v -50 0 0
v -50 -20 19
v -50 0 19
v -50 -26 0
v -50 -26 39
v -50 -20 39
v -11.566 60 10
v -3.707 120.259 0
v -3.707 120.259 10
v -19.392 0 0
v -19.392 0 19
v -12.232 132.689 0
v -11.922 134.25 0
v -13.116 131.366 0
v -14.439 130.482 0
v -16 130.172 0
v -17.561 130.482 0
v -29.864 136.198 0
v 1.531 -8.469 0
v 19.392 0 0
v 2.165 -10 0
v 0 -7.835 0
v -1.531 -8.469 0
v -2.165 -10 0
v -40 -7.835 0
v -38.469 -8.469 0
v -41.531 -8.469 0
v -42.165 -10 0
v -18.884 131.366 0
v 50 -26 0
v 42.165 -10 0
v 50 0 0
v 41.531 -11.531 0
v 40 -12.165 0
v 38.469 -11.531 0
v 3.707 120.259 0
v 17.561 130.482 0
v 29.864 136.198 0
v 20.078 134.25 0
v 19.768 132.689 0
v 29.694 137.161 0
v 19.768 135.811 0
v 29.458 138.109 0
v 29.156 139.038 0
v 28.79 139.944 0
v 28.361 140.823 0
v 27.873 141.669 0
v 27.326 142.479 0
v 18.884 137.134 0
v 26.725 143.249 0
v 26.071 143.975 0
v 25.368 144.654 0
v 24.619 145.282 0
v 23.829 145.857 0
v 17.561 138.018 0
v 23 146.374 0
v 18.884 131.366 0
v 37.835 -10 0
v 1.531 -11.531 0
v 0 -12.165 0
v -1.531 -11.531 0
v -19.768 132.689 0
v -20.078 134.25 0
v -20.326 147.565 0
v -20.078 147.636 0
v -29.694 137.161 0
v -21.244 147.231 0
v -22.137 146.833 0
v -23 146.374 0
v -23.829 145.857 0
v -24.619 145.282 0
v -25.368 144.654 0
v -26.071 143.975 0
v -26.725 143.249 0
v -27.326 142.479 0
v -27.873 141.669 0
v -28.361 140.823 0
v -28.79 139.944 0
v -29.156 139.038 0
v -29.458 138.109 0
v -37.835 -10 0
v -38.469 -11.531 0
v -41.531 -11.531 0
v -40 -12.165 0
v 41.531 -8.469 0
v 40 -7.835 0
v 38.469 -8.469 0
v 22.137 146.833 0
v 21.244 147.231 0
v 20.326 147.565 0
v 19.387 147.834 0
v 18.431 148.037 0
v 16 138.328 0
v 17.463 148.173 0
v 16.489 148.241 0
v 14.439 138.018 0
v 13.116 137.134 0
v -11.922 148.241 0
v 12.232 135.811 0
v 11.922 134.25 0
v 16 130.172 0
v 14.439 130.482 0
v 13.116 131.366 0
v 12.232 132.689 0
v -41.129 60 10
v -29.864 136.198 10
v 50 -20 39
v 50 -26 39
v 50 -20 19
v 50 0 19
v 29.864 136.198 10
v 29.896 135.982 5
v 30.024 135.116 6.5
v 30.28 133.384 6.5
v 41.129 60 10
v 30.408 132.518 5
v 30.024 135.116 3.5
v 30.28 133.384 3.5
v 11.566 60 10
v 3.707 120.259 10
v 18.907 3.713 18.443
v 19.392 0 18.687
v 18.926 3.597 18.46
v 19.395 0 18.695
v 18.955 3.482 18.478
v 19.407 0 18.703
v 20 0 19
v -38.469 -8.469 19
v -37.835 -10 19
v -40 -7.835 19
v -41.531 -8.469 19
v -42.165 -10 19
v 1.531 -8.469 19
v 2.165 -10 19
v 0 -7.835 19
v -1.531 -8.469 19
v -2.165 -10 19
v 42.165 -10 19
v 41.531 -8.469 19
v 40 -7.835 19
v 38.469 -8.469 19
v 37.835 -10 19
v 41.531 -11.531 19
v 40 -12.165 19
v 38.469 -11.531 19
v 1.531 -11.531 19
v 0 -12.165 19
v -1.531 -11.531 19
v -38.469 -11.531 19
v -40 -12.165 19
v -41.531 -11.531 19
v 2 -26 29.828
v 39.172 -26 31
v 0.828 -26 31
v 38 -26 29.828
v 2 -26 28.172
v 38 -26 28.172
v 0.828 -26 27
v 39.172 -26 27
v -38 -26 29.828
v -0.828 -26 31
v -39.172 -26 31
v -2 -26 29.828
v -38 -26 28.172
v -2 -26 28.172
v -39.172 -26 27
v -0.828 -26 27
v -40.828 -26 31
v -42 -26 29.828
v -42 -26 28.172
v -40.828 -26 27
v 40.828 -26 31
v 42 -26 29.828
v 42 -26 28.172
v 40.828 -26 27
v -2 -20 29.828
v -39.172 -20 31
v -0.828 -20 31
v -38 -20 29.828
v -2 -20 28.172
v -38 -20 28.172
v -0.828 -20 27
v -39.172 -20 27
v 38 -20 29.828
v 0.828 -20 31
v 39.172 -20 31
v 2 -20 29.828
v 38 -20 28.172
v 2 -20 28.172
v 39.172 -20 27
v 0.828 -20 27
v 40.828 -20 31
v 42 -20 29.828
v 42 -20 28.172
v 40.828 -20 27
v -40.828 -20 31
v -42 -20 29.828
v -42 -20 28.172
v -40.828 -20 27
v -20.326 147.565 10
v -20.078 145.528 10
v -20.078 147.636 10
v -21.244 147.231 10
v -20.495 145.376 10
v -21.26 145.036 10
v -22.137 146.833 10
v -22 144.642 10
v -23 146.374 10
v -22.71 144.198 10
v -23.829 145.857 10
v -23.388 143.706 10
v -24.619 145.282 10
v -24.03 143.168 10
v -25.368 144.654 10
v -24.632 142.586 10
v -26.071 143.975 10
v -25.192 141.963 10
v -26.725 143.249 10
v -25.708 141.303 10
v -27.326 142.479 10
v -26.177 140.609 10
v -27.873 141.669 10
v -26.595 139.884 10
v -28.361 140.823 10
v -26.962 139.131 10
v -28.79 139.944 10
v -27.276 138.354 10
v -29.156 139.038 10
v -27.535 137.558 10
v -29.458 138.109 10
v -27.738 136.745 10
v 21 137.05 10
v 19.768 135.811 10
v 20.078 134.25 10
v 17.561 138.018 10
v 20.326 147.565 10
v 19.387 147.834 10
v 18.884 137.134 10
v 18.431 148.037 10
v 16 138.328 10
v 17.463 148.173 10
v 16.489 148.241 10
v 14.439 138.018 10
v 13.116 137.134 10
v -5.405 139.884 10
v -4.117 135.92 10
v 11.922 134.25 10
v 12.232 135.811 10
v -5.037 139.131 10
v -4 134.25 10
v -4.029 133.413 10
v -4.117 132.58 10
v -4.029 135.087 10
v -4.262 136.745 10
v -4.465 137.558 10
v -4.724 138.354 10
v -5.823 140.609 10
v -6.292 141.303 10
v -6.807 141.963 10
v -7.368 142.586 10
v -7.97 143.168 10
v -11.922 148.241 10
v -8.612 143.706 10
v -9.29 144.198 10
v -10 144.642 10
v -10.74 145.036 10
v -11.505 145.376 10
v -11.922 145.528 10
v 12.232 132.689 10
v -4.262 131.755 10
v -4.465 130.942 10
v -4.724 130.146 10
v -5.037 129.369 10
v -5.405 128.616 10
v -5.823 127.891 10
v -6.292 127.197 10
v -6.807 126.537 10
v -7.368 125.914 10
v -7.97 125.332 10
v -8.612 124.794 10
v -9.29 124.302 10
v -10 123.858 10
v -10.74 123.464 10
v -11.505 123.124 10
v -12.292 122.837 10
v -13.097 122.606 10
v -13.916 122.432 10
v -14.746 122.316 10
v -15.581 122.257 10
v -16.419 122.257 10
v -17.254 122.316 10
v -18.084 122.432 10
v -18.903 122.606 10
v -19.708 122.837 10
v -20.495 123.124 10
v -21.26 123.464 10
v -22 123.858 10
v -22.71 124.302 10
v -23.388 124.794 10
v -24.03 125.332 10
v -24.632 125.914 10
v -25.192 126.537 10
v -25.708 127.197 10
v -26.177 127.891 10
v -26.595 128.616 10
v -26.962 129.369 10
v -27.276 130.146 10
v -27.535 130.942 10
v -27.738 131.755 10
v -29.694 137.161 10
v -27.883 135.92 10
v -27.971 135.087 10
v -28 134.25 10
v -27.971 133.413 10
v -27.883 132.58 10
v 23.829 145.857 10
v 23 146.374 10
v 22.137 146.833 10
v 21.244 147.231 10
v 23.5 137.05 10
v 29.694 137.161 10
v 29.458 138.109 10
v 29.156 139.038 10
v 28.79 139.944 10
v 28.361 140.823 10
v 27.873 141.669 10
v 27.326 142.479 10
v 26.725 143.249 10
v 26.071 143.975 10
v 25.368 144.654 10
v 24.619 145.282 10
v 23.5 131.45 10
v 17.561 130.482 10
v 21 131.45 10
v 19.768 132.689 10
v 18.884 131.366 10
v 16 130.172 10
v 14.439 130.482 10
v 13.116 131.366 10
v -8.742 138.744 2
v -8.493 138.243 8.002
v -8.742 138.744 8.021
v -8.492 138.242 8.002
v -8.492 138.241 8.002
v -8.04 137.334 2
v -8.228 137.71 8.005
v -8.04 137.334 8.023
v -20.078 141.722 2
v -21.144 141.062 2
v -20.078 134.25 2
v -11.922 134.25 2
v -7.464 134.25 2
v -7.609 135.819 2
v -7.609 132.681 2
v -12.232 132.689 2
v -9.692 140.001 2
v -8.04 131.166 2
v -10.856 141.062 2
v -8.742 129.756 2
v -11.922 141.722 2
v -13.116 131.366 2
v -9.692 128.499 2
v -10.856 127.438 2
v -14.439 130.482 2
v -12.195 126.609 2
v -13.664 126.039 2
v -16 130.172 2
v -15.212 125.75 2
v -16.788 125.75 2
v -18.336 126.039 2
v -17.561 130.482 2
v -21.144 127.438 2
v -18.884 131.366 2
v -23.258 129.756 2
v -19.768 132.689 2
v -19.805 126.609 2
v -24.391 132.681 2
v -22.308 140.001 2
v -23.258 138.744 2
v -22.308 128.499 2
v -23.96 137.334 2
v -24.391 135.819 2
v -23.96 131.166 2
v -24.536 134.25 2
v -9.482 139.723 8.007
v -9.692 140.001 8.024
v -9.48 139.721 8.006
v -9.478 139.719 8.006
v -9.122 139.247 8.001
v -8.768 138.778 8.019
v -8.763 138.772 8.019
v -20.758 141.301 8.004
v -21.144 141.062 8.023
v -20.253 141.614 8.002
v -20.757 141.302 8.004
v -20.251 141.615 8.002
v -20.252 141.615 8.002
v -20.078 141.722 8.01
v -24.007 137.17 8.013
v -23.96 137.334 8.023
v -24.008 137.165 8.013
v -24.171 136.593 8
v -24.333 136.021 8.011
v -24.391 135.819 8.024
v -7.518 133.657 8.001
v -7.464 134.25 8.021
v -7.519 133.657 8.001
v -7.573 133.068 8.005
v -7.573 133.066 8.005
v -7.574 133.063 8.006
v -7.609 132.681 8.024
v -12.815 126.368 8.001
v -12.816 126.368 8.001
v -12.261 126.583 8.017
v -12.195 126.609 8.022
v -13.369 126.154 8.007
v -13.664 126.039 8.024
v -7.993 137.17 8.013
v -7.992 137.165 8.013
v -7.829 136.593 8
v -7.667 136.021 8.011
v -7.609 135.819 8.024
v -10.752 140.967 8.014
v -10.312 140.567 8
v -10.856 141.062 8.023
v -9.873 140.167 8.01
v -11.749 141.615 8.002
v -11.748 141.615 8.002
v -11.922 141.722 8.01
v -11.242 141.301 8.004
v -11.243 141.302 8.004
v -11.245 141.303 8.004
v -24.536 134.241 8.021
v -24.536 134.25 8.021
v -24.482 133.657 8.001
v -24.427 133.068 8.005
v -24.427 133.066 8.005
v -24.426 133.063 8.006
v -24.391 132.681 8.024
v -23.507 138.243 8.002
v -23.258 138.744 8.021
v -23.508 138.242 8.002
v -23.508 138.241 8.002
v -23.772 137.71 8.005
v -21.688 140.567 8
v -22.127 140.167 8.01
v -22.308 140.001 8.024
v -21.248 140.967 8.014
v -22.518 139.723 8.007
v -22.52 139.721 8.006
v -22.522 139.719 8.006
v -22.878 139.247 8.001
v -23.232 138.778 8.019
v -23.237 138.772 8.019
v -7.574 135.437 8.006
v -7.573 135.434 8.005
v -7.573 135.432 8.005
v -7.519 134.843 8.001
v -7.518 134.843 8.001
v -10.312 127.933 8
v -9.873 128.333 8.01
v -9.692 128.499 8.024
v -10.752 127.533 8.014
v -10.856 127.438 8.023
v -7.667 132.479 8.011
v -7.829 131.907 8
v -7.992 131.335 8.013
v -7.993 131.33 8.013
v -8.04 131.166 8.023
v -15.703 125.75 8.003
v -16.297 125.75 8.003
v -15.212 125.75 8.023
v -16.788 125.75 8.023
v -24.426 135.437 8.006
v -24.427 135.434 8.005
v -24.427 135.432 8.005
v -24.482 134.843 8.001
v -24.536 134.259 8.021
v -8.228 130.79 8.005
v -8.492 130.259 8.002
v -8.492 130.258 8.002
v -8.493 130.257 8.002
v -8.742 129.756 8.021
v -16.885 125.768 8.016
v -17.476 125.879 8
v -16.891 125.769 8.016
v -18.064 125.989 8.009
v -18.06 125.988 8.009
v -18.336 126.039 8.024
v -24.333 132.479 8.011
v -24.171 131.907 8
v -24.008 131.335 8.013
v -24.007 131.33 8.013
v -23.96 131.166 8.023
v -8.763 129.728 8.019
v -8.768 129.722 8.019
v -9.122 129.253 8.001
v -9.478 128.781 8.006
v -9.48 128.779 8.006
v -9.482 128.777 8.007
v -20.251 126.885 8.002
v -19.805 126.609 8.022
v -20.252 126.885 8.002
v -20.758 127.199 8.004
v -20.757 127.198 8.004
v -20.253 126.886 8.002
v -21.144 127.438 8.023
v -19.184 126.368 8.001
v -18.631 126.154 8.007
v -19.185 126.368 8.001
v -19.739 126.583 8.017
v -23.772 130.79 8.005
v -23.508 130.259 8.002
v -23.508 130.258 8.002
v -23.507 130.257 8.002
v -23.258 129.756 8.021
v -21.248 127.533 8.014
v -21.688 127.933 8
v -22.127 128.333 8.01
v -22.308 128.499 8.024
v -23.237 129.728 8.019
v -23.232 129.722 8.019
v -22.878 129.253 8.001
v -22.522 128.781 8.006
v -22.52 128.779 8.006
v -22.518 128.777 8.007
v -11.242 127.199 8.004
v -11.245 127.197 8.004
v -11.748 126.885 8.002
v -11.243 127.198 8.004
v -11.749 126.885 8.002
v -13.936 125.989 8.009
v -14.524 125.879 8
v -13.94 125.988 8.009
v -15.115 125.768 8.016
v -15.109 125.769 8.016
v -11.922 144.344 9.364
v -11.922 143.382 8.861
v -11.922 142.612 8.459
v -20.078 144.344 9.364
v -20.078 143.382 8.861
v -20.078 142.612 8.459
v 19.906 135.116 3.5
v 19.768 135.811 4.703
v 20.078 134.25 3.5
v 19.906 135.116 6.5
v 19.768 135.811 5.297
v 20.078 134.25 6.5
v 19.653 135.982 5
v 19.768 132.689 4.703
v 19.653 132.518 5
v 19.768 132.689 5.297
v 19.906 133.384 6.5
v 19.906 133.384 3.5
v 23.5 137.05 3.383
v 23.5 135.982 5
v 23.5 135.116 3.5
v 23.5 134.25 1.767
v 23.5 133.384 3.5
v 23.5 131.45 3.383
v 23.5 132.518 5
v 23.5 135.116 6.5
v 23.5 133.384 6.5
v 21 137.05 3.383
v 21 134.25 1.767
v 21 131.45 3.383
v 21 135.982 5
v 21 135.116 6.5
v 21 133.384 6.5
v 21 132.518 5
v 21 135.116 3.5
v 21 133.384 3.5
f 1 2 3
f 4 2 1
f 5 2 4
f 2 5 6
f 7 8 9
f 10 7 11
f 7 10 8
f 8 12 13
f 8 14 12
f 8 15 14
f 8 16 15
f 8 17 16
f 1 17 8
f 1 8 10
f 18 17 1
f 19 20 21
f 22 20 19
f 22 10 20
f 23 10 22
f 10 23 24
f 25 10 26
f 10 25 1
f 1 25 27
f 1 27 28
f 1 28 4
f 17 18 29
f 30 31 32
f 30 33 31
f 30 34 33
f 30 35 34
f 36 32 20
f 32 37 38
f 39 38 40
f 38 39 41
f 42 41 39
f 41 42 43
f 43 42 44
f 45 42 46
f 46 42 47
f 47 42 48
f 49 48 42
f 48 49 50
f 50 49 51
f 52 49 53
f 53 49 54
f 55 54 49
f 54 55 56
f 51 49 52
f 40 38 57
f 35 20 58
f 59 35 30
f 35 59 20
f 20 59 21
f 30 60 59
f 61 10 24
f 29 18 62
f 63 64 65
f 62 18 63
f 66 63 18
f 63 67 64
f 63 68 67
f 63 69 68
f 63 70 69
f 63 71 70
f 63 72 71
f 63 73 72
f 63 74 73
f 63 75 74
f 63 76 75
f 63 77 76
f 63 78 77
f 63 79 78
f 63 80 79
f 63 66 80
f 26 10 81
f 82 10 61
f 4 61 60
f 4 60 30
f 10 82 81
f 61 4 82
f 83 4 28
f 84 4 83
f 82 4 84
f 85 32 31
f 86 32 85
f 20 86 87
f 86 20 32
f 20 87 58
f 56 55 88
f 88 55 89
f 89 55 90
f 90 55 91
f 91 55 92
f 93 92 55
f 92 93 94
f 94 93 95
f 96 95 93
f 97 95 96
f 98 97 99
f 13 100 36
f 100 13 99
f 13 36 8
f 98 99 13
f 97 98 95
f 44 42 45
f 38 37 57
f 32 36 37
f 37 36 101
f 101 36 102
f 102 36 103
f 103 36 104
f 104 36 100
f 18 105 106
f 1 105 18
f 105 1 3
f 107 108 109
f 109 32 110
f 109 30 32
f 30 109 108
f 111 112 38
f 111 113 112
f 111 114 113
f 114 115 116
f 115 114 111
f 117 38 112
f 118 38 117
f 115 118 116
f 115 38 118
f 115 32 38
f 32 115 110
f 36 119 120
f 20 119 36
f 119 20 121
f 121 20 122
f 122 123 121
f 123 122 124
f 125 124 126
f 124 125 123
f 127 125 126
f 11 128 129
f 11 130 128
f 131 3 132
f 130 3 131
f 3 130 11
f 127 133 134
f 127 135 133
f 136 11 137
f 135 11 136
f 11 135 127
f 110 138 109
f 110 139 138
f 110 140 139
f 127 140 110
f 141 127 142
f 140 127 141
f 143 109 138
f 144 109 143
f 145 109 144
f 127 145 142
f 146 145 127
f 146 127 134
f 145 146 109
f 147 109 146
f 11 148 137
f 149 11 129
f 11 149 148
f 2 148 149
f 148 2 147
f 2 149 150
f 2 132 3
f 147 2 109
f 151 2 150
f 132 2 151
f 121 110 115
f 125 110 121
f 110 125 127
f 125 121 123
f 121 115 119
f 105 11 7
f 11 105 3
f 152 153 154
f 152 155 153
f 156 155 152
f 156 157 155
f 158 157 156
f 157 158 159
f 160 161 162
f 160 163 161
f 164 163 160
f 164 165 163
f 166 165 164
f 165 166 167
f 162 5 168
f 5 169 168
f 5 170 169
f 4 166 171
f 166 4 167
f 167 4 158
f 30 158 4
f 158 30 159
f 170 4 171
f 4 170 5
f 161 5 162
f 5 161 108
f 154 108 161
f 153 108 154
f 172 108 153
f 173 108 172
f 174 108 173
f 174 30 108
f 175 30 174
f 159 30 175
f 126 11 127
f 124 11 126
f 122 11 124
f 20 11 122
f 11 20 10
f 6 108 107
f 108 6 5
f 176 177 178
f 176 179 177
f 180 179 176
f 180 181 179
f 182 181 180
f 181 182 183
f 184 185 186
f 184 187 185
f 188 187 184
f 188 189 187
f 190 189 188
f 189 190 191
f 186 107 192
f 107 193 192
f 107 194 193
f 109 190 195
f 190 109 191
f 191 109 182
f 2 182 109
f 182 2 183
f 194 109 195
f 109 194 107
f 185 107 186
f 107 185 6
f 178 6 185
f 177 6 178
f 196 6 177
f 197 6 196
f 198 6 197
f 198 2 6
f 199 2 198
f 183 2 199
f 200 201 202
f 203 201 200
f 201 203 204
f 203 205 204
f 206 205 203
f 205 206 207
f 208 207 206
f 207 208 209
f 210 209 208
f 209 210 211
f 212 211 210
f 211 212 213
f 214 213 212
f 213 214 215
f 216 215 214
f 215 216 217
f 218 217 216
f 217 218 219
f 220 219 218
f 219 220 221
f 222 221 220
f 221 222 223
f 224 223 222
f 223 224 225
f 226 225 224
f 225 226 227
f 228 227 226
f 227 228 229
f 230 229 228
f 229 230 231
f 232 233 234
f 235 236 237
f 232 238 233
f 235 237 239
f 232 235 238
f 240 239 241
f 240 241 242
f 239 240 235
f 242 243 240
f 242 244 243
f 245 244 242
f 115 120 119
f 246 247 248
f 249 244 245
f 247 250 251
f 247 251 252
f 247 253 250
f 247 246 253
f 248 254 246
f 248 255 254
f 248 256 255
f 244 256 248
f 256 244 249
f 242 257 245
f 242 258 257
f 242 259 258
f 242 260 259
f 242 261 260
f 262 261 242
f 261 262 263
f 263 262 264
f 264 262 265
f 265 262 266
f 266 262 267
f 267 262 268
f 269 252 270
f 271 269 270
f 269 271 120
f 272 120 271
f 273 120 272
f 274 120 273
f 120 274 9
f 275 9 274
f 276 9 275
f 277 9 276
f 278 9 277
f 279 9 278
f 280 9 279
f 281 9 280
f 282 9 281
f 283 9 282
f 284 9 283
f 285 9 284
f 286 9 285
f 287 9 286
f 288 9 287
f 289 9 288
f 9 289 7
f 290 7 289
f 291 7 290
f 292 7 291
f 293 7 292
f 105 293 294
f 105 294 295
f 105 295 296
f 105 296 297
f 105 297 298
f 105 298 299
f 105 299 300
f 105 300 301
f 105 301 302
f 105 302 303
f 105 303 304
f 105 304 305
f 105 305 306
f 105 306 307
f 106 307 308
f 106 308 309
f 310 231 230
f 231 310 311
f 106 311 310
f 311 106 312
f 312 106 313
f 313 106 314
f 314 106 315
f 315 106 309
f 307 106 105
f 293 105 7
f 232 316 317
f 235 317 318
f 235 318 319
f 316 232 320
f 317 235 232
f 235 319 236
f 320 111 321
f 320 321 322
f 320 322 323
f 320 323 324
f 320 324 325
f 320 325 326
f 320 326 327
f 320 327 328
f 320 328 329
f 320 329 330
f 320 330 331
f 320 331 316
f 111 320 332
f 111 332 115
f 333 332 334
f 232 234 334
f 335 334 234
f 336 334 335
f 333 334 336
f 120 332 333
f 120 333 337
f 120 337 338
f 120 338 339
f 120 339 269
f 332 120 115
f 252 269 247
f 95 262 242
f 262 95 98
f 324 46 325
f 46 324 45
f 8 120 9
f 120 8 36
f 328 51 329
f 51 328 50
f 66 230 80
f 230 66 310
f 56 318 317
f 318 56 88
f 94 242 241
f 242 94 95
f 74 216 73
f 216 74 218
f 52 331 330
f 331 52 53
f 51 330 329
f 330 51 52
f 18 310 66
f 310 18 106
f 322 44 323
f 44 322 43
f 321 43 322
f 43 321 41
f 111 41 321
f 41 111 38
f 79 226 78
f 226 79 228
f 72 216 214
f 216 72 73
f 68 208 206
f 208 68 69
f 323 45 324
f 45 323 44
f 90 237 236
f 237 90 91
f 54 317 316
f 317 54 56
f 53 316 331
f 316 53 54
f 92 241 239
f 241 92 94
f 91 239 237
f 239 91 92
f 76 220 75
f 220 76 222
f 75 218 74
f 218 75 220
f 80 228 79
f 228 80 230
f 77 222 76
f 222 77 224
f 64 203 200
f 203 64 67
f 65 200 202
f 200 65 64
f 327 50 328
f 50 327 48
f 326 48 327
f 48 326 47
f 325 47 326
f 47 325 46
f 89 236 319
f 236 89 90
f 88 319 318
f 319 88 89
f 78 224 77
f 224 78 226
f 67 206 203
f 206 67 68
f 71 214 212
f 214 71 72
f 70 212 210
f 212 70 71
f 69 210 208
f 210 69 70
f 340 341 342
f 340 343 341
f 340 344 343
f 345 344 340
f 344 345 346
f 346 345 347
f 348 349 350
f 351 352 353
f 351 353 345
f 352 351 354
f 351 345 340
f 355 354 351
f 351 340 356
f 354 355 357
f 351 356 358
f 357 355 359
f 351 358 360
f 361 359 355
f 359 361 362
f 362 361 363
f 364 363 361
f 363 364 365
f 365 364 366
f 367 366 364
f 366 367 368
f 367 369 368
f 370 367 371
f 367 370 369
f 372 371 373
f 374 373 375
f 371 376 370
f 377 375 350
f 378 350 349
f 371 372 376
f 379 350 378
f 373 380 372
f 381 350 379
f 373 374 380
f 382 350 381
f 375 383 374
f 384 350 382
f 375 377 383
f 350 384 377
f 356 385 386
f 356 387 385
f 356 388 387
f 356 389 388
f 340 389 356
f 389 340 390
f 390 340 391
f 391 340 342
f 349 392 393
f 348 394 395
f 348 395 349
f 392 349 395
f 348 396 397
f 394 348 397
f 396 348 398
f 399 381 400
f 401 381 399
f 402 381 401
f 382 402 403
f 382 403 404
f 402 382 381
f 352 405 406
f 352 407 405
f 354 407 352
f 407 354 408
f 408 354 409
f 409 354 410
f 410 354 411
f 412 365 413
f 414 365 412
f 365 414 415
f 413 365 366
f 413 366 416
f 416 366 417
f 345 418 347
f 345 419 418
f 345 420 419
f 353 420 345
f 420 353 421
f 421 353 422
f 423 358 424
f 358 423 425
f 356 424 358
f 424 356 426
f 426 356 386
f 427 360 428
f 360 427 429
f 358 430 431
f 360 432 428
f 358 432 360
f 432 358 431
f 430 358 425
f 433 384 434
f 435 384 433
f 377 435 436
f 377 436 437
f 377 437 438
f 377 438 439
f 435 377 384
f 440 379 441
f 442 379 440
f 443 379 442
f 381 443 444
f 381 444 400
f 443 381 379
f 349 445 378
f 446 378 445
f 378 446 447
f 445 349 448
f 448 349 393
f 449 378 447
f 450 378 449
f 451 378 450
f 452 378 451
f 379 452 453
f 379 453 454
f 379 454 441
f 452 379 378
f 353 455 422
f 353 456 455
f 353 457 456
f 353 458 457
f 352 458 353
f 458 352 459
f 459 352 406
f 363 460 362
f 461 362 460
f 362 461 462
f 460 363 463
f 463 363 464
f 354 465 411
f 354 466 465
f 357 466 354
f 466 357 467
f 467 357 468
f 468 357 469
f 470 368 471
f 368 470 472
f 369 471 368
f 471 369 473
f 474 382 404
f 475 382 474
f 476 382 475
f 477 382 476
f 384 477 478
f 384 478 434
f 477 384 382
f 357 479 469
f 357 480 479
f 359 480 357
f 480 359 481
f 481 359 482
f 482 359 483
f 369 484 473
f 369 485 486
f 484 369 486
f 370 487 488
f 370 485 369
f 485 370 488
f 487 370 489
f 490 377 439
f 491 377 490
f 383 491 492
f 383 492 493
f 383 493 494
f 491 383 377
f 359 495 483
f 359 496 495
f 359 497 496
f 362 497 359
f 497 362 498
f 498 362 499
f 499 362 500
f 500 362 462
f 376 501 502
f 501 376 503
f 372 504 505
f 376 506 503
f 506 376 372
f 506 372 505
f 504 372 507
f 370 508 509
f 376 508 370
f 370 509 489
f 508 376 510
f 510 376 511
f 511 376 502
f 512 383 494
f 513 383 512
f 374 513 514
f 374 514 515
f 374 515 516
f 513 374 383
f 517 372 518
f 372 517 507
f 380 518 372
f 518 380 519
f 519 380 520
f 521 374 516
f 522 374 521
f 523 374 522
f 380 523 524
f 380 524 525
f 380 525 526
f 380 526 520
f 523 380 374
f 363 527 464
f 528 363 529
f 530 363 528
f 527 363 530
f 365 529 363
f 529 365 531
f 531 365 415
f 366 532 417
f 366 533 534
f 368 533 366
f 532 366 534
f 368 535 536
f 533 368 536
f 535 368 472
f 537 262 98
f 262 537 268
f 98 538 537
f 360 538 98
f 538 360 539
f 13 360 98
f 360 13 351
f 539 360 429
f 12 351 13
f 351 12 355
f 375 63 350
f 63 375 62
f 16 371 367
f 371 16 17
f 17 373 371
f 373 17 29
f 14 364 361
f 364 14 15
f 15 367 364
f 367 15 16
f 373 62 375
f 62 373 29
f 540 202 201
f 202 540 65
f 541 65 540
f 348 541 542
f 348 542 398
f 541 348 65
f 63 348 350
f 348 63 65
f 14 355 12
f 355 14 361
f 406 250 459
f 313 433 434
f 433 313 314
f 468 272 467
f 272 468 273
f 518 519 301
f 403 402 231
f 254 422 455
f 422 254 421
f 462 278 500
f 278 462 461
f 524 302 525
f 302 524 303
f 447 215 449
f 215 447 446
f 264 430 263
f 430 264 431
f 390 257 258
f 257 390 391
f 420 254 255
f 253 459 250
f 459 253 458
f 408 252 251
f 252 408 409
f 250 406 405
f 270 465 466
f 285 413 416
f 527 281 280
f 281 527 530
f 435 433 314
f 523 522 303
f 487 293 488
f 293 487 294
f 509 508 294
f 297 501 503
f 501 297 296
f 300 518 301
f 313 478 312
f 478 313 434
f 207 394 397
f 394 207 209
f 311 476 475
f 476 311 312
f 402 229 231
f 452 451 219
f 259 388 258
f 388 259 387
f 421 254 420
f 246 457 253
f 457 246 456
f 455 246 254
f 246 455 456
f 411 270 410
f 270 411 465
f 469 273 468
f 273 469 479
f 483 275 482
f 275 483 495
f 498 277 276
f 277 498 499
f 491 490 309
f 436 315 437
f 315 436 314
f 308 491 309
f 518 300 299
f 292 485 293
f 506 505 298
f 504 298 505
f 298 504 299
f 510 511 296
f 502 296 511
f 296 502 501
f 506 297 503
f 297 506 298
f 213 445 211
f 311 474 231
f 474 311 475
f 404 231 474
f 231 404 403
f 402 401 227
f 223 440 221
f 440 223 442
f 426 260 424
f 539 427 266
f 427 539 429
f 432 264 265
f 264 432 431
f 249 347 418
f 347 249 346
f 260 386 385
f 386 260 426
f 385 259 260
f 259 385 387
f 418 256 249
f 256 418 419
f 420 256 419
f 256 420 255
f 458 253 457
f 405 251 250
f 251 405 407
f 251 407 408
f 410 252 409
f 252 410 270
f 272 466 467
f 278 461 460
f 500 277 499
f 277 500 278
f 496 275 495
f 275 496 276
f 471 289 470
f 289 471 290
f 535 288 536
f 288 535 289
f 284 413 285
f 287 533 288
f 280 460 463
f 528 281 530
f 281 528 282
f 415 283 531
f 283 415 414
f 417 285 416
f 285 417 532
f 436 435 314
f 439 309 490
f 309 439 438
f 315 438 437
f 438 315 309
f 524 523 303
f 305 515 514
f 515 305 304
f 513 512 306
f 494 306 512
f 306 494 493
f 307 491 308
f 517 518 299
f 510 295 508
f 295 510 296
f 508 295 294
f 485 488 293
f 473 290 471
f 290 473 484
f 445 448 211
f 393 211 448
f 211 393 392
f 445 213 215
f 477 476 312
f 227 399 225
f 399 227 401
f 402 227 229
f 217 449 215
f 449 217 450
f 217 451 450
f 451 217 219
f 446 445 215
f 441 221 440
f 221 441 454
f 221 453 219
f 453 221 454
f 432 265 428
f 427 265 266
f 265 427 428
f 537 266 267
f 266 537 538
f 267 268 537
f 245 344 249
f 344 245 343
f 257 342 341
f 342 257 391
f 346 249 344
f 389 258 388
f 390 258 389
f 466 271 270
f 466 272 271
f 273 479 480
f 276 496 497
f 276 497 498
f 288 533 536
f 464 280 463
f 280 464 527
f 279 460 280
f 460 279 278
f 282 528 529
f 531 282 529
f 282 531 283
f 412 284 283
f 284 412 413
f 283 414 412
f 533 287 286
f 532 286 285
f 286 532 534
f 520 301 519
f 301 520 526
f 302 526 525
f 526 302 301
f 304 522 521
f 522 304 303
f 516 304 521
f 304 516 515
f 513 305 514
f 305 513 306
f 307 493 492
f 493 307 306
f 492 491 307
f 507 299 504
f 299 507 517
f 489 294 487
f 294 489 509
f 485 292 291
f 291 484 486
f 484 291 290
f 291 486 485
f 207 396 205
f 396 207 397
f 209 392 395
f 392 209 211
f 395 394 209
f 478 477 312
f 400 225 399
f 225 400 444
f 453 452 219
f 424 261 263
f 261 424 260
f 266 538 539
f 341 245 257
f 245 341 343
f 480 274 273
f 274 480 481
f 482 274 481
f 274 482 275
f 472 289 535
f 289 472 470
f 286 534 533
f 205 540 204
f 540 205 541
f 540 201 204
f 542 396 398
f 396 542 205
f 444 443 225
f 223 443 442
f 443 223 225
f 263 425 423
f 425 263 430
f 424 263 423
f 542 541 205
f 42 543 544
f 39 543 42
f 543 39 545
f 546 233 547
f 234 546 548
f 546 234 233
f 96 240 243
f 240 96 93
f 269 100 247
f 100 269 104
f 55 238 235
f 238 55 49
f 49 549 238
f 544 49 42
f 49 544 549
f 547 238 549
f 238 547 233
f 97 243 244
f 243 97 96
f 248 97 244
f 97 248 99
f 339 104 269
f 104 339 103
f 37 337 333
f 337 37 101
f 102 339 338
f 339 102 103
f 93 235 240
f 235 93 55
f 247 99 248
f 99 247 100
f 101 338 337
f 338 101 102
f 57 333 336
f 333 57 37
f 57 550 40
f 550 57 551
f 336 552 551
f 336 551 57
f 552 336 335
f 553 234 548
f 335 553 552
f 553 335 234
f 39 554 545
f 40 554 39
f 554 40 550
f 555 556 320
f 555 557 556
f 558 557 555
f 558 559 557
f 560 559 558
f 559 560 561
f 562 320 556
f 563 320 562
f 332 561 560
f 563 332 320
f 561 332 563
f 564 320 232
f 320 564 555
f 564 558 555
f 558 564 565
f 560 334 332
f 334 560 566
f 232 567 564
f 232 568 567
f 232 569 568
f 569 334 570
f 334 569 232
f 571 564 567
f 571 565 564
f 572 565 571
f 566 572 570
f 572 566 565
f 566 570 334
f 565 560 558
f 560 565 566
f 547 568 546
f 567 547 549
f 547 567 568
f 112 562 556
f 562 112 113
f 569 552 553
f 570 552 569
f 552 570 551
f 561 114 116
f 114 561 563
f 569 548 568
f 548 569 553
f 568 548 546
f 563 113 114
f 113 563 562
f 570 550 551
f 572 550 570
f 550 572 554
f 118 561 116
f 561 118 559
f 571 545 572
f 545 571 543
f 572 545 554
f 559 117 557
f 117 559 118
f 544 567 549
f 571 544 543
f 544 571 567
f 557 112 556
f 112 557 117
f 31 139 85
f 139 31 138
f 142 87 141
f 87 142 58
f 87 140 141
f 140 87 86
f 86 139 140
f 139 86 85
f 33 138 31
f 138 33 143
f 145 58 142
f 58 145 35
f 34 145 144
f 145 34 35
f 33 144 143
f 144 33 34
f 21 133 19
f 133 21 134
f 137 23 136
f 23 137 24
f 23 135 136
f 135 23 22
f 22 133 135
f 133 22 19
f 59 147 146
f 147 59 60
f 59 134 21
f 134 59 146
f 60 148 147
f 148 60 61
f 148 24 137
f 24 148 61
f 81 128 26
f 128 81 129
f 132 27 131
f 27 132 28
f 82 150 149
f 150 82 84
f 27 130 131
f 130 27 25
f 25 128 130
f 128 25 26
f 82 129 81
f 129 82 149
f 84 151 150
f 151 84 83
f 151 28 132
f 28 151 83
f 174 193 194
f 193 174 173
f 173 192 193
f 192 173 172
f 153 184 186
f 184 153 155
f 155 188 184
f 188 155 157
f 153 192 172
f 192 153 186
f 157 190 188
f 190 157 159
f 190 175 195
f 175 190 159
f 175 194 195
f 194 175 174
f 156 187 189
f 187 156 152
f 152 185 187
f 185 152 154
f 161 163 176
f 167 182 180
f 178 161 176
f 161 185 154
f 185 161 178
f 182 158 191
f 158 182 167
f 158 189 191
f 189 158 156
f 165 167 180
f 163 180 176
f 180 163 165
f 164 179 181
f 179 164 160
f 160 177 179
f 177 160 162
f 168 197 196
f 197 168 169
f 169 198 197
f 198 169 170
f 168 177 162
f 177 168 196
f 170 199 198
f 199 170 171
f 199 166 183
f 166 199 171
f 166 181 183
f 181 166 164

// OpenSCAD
// file: nutShape.scad
// a nut shape that takes height and width across flats as input.

nutShape(6, 3);

module nutShape(w, h)
{
    rotate_extrude($fn = 6)
        square([((w / 2) / (cos(30))), h], center = false);
}
// file: polyhole.scad
// The Cylinder is dead! Long live the Cylinder!
// A module for a polyhole by radius, based on Nophead's work.

module polyhole(h, r, cent = false)
{
    n = max(round(4 * r), 3);
    cylinder(h = h, r = r / cos(180 / n), $fn = n, center = cent);
}
// main file
// A mount to support the vertical linear rod and lead screw on the part 
//  of the machine that has the longer distance from the frame to the rod 
//  due to the position of the extruder on the carriage.

use<polyhole.scad>
use<nutShape.scad>

distToRod = 134.25;

difference()
{
    union()
    {
        translate([0, -13, 9.5])
            cube([100, 26, 19], center = true);
        translate([0, -23, 19.5])
            cube([100, 6, 39], center = true);
        hull()
        {
            translate([-16, distToRod, 0])
                cylinder(h = 10, r = 14, $fn = 90);
            translate([16, distToRod, 0])
                cylinder(h = 10, r = 14, $fn = 90);

        }
        hull()
        {
            translate([-16, distToRod, 0])
                cylinder(h = 10, r = 14, $fn = 90);
            translate([-36, -10, 5])
                cube([28, 20, 10], center = true);
        }
        hull()
        {
            translate([16, distToRod, 0])
                cylinder(h = 10, r = 14, $fn = 90);
            translate([36, -10, 5])
                cube([28, 20, 10], center = true);
        }
        intersection()
        {
            hull()
            {
                translate([0, -13, 9.5])
                    cube([100, 26, 19], center = true);
                translate([0, 50, 5])
                    cube([100, 20, 10], center = true);
            }
            union()
            {
                hull()
                {
                    translate([-16, distToRod, 0])
                        cylinder(h = 20, r = 14, $fn = 90);
                    translate([-36, -10, 10])
                        cube([28, 20, 20], center = true);
                }
                hull()
                {
                    translate([16, distToRod, 0])
                        cylinder(h = 10, r = 14, $fn = 90);
                    translate([36, -10, 10])
                        cube([28, 20, 20], center = true);
                }
            }
        }
    }
    translate([-16, distToRod, 2])
        polyhole(8, 8.5);
    hull()
    {
        translate([-16, distToRod, 0])
            polyhole(10, 4);
        translate([-16, distToRod+20, 0])
            polyhole(10, 4);
    }
    translate([-16, distToRod, 8])
        cylinder(h = 2, r1 = 8.5, r2 = 12, $fn = 90);
    translate([16, distToRod, 0])
        polyhole(10, 4);
    hull()
    {
        translate([21, distToRod, 5])
            rotate([0, 90, 0])
                nutShape(5.6, 2.5);
        translate([21, distToRod, 10])
            rotate([0, 90, 0])
                nutShape(5.6, 2.5);
    }
    translate([16, distToRod, 5])
        rotate([90, 0, 90])
            polyhole(20, 1.5);
    translate([40, -10, 0])
        polyhole(25, 2);
    translate([0, -10, 0])
        polyhole(25, 2);
    translate([-40, -10, 0])
        polyhole(25, 2);
    translate([40, -20, 29])
        rotate([90, 22.5, 0])
            polyhole(6, 2);
    translate([0, -20, 29])
        rotate([90, 22.5, 0])
            polyhole(6, 2);
    translate([-40, -20, 29])
        rotate([90, 22.5, 0])
            polyhole(6, 2);
}
